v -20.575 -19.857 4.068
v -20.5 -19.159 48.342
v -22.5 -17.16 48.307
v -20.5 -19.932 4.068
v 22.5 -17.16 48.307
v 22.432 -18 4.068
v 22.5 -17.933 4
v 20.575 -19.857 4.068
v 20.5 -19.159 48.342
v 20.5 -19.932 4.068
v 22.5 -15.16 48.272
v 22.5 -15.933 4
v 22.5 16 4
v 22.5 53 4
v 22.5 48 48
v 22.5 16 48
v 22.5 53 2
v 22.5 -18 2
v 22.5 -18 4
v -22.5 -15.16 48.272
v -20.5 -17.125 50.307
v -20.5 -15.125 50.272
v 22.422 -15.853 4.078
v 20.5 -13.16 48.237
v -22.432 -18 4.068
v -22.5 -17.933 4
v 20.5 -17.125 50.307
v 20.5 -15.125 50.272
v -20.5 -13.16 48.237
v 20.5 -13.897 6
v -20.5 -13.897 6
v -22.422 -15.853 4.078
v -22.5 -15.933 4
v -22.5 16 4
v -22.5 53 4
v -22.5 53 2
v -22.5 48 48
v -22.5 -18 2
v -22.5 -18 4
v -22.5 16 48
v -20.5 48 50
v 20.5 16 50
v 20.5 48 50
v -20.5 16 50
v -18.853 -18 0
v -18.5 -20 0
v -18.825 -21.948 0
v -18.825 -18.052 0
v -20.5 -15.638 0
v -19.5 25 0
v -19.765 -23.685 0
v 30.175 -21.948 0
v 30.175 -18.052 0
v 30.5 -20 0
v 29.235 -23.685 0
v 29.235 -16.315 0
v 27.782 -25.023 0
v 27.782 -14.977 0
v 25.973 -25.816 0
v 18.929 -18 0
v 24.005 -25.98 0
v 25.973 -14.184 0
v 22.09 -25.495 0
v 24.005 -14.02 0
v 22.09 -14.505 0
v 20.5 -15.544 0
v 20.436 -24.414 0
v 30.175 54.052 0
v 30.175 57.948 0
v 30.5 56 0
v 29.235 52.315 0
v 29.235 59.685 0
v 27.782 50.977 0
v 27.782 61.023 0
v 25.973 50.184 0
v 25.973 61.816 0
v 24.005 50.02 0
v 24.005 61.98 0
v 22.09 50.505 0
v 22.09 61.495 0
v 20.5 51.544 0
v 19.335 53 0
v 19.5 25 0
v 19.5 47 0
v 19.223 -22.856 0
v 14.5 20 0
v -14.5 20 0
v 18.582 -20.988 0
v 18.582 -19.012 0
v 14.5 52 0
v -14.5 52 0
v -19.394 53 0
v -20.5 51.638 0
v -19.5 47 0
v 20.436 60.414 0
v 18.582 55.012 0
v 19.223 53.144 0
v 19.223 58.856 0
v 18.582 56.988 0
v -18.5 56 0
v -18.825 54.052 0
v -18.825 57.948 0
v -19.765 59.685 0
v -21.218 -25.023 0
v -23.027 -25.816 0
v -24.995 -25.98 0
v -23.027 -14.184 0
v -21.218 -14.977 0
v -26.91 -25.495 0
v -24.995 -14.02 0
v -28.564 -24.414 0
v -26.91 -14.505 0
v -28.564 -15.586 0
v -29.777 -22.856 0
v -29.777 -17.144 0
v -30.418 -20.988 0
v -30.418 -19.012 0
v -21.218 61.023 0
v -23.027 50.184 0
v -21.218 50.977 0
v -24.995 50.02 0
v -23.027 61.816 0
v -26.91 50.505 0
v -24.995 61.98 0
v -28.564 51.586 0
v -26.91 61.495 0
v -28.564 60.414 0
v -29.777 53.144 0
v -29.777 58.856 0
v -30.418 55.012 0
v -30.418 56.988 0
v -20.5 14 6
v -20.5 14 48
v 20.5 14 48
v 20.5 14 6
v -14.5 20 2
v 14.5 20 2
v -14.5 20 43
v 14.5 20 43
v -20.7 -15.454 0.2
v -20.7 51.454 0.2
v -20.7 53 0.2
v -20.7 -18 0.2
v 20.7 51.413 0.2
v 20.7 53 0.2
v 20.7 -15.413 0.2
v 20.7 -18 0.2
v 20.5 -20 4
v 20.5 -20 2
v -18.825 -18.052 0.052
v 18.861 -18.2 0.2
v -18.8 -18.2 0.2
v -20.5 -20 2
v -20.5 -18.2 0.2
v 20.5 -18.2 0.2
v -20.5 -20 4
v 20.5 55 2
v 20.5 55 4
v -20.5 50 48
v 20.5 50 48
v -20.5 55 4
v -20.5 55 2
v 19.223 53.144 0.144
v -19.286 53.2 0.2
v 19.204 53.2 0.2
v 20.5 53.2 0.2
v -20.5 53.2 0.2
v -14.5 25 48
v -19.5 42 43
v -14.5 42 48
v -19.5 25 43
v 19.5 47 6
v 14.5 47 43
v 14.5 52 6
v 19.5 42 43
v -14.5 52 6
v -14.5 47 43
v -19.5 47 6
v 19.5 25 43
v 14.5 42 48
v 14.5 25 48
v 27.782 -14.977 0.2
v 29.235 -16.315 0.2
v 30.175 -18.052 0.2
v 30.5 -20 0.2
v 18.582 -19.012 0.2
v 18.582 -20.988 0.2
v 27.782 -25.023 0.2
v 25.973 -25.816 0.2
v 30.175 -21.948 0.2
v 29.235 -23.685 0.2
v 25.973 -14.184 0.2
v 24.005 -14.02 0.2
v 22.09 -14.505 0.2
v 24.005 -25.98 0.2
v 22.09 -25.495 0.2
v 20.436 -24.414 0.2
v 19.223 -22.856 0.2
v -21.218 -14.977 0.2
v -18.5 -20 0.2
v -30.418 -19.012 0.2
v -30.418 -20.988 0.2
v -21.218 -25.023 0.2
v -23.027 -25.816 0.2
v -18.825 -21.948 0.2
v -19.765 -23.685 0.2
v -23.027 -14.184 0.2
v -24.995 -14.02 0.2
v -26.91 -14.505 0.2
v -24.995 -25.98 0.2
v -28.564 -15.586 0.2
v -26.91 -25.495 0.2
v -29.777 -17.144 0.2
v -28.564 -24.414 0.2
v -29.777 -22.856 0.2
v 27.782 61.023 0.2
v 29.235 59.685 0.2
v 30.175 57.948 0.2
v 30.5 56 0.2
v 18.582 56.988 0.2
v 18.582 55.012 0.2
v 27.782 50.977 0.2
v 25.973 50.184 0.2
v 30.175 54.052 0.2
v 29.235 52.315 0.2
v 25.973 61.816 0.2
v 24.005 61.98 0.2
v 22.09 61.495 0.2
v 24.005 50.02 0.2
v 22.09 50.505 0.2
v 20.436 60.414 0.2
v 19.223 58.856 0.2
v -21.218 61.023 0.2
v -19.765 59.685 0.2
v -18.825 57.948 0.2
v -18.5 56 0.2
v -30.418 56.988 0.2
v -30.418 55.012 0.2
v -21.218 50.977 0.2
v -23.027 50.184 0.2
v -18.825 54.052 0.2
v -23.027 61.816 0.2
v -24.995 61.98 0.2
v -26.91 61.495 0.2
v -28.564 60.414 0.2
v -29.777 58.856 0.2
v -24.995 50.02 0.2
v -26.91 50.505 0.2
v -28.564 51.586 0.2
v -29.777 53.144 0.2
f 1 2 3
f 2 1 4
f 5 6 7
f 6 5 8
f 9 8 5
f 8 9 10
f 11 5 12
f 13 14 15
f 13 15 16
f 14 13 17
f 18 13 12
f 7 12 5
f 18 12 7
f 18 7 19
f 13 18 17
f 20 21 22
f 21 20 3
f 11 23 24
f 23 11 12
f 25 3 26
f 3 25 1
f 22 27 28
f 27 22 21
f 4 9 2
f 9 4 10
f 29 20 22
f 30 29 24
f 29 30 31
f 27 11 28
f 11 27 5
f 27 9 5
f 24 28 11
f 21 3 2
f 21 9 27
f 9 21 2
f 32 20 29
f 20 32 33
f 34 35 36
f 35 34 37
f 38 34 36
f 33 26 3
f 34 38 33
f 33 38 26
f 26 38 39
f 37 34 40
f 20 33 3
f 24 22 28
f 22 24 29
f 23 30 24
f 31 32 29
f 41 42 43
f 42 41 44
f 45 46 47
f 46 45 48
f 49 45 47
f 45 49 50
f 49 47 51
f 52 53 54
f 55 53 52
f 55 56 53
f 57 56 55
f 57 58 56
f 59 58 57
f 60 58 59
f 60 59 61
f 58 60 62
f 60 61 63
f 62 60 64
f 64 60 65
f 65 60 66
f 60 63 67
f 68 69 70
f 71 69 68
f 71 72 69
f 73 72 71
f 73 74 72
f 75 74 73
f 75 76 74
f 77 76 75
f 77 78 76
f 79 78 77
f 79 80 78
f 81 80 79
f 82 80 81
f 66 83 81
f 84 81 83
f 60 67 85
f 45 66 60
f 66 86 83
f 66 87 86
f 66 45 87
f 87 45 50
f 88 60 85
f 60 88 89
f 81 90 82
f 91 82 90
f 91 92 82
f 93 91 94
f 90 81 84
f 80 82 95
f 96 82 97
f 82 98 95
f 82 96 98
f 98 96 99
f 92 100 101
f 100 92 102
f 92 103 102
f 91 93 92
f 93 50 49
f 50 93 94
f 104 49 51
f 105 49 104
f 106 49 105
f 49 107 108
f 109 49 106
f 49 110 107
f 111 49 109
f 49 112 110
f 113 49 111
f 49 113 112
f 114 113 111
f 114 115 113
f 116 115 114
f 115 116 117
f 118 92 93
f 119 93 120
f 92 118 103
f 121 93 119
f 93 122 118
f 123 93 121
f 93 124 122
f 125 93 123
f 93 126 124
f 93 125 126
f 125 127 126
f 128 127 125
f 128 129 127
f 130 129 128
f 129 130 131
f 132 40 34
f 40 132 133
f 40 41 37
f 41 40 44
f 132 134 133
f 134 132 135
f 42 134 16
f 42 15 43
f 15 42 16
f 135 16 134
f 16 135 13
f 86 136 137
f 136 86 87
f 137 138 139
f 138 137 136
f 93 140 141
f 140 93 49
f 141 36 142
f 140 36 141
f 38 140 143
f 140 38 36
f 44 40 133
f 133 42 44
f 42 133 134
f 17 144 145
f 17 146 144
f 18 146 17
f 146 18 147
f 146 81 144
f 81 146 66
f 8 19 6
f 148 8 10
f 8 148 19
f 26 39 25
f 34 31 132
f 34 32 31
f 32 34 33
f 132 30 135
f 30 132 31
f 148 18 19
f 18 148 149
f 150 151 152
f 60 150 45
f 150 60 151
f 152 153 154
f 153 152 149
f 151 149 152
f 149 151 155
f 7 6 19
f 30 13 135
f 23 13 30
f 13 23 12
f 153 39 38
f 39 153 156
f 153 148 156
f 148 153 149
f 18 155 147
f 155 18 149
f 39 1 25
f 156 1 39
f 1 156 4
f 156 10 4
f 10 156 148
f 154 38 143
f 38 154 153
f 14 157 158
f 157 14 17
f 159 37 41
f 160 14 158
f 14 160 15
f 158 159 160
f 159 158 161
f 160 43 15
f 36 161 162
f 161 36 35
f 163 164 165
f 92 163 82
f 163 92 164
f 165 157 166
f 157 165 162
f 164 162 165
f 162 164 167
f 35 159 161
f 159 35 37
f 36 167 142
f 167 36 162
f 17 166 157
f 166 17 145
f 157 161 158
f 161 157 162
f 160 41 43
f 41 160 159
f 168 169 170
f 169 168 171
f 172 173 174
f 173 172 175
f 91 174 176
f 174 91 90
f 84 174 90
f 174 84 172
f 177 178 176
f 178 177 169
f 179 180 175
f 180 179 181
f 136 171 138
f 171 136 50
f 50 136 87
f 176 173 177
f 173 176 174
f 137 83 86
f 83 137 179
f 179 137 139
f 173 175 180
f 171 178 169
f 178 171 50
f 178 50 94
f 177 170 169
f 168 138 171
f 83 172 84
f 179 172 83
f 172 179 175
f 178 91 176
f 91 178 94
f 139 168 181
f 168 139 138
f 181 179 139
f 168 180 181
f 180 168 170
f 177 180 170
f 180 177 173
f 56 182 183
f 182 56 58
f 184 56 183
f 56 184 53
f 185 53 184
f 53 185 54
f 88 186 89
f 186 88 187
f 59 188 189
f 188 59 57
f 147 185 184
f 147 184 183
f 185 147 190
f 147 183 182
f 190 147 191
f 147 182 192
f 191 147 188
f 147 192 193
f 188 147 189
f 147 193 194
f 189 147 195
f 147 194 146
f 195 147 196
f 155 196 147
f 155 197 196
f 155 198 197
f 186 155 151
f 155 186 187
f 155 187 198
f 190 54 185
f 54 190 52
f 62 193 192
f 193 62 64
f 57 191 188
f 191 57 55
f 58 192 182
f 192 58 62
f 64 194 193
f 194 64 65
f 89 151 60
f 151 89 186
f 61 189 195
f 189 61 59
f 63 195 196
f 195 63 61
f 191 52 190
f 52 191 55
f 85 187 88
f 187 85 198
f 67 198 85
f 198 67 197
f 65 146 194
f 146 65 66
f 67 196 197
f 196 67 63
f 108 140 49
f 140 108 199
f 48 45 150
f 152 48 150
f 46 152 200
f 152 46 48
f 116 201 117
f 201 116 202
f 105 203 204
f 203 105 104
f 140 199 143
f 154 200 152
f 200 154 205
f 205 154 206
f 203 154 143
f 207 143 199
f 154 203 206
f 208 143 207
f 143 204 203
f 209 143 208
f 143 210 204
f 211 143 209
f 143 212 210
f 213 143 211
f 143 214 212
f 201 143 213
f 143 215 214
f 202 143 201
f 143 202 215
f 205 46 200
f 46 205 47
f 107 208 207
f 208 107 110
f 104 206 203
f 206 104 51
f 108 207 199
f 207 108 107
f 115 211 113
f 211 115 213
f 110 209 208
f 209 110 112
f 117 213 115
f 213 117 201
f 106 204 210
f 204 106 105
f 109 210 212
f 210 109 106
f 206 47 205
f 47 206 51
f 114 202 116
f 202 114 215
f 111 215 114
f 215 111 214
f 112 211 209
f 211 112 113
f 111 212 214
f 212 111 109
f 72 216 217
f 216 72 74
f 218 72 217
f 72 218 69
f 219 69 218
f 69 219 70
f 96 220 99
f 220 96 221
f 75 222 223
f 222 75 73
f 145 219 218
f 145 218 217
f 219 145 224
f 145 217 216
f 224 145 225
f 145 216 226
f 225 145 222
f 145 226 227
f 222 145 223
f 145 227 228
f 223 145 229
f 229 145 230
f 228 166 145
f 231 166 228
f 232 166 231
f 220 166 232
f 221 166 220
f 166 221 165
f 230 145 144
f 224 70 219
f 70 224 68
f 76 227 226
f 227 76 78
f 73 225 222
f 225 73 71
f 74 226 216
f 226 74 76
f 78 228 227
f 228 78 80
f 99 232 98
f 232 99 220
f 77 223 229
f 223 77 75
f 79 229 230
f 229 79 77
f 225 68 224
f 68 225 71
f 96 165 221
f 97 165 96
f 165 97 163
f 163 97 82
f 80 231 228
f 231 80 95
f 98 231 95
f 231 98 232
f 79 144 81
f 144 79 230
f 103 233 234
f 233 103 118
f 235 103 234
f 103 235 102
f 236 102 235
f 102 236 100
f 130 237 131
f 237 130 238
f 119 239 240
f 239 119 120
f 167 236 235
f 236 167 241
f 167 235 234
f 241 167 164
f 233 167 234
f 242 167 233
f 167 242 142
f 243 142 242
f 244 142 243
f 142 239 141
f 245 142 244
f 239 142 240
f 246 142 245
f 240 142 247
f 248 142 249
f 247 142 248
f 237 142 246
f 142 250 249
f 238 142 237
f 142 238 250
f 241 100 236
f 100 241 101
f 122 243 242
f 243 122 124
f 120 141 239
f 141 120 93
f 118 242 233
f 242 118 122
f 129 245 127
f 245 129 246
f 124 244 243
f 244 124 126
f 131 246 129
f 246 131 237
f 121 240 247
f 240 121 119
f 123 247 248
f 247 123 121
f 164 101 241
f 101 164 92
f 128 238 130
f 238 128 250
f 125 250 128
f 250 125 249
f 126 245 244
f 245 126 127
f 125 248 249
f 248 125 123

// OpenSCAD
include <BOSL/constants.scad>
use <BOSL/shapes.scad>
use <BOSL/transforms.scad>

plank_w=28;
torch_x=39;
torch_x_outer=torch_x+6;
torch_y=32;
torch_y_outer=torch_y+6;
h=50;

module plank_holder() {
    color("green") xrot(-1) ymove(-plank_w/2) cuboid([torch_x_outer, 6, h], align=V_TOP+V_FRONT, chamfer=2);
    ymove(plank_w/2) cuboid([torch_x_outer, 6, h], align=V_TOP+V_BACK, chamfer=2);
    cuboid([torch_x_outer, plank_w+12, 6], align=V_TOP, chamfer=2);
}

module flash_holder() {
    color("blue") ymove((plank_w+torch_y_outer)/2+3) difference() {
    
        ymove(-1.5) hull() {
            cuboid([torch_x_outer, torch_y_outer+3, 6], align=V_TOP, chamfer=2);
            ymove(-2.5) cuboid([torch_x_outer, torch_y_outer-2, h], align=V_TOP, chamfer=2);
        }
        hull() {
            cuboid([torch_x, torch_y, 6], chamfer=5, align=V_TOP,edges=EDGES_Z_ALL);
            ymove(-2.5) cuboid([torch_x, torch_y-5, h-2], chamfer=5, align=V_TOP);  
        }
    }
}

module mouse_ear(x, y) {
    move(x=x, y=y) cylinder(r=6, h=.2);
}

plank_holder();
flash_holder();

mouse_ear(torch_x_outer/2+2, -plank_w/2-6);
mouse_ear(-torch_x_outer/2-2, -plank_w/2-6);
mouse_ear(torch_x_outer/2+2, plank_w/2+torch_y_outer+4);
mouse_ear(-torch_x_outer/2-2, plank_w/2+torch_y_outer+4);
